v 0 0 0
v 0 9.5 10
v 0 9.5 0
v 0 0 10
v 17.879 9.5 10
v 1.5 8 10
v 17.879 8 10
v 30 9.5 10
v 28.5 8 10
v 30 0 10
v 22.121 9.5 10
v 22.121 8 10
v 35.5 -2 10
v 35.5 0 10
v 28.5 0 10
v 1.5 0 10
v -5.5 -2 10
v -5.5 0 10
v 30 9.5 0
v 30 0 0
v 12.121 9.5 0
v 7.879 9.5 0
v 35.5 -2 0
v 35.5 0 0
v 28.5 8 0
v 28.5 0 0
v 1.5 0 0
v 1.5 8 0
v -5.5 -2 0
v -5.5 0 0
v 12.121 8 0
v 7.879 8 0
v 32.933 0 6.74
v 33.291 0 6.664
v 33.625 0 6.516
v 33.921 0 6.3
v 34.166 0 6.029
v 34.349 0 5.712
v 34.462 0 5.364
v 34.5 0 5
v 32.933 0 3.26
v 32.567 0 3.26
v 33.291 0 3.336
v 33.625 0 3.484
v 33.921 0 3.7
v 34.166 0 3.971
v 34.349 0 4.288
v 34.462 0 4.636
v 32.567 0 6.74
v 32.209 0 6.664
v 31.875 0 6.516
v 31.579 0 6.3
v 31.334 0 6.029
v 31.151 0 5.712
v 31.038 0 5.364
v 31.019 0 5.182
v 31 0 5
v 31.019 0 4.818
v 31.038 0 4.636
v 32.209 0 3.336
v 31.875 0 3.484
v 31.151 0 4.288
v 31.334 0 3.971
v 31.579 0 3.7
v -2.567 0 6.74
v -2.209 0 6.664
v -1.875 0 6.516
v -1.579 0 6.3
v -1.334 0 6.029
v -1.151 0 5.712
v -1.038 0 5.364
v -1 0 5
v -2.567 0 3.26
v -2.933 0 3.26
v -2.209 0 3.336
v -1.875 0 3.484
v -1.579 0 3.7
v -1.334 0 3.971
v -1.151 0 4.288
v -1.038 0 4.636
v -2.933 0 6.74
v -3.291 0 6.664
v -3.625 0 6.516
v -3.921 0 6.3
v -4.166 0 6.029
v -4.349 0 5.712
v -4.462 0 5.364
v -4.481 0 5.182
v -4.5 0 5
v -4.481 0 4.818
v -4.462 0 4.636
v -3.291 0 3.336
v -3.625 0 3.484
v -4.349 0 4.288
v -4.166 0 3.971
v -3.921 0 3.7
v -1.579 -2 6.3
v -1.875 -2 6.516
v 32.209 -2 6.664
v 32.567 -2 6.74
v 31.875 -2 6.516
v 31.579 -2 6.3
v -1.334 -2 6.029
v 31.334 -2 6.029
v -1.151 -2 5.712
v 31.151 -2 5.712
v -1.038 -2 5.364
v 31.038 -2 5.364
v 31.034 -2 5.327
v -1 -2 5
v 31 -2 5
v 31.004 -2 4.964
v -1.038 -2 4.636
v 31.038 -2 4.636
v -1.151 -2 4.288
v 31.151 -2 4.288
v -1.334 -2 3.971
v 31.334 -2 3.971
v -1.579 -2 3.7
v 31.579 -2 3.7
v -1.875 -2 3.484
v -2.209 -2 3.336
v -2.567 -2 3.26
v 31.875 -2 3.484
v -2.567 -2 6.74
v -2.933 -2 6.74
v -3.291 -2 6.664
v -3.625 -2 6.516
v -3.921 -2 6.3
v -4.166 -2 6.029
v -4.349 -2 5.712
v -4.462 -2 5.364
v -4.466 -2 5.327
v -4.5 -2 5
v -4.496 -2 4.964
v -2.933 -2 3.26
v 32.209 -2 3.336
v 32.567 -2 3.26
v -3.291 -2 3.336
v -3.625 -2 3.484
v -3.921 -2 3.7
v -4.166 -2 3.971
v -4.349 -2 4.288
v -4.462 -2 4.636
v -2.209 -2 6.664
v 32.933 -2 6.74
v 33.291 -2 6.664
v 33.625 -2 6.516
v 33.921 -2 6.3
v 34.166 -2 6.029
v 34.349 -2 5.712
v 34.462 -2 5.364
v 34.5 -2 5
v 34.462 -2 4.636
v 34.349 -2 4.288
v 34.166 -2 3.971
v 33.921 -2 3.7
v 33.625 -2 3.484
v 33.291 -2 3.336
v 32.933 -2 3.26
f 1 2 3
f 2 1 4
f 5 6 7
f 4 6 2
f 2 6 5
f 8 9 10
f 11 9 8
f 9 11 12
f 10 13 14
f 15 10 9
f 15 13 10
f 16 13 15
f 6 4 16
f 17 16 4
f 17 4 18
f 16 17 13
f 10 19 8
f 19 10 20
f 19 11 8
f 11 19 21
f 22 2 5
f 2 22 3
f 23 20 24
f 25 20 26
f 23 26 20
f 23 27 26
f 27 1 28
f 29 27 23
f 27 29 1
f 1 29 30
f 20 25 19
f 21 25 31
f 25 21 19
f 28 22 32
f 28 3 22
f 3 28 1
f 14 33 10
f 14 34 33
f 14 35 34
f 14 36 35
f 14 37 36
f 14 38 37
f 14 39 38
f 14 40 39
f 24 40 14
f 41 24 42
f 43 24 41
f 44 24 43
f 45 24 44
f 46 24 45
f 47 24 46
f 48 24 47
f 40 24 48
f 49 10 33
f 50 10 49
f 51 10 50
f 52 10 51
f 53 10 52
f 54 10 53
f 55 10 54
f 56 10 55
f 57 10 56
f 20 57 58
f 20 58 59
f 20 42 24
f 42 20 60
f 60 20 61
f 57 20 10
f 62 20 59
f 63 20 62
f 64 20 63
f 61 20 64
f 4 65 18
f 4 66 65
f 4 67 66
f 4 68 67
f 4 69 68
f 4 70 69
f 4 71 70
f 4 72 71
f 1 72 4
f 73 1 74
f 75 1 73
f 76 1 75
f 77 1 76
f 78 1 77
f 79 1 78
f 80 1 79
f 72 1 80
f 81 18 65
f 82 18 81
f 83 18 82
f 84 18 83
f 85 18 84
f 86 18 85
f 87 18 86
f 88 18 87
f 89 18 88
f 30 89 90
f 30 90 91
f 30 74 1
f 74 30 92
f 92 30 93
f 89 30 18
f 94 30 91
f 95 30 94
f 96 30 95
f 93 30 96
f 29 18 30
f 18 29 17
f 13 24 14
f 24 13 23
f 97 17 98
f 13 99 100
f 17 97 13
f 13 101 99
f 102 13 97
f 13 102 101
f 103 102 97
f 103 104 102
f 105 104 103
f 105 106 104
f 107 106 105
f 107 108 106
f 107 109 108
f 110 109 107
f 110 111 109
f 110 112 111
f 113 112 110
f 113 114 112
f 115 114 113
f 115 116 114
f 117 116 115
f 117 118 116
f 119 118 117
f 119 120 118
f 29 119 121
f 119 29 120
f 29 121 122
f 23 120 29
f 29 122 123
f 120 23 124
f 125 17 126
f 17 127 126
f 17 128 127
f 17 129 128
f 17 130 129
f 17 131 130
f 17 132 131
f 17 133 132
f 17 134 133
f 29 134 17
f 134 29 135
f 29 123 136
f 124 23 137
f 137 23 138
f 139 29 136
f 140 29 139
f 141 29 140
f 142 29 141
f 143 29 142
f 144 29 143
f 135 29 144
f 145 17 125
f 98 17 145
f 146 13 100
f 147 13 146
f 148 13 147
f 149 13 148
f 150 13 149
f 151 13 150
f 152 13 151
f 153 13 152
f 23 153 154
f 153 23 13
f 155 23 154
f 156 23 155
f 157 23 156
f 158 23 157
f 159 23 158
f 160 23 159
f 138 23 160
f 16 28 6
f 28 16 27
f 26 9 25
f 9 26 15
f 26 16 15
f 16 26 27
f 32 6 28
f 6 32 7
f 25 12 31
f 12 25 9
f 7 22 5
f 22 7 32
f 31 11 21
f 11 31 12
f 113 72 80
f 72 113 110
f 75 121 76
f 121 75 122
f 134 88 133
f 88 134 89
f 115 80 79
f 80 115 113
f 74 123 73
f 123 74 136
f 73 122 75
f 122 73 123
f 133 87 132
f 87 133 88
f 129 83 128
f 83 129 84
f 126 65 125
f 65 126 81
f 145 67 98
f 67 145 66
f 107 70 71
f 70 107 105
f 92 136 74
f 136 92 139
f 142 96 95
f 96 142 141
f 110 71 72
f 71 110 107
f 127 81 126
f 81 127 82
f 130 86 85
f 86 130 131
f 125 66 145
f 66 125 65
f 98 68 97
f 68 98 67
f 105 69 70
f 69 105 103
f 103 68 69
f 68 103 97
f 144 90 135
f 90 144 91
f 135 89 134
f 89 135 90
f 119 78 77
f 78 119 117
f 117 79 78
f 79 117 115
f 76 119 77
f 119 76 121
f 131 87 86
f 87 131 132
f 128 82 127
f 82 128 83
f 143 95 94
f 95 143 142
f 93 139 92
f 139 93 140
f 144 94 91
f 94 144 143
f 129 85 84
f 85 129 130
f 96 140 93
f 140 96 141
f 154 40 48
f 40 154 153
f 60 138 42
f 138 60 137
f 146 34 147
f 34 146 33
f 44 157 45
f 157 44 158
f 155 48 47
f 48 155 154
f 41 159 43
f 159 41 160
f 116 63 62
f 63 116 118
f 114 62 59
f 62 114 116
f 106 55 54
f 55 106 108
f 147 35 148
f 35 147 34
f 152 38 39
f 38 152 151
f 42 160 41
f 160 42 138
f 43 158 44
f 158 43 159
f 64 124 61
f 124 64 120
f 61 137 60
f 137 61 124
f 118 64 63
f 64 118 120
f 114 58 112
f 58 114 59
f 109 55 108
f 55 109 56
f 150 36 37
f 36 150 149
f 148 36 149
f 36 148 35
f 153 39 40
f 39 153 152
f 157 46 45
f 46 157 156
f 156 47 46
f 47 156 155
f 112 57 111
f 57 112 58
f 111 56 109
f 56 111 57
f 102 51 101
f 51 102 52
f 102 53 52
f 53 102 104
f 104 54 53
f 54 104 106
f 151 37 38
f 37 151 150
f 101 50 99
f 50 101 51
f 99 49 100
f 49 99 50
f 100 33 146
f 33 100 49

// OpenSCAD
height = 8;

module frame() {
    union() {
        cube([30,height+1.5,10]);
        translate([(30-41)/2,-2,0]) cube([41,2,10]);
    }
}

difference() {
    frame();
    translate([(30-27)/2,0,0]) cube([27,height,11]);
    translate([30/2, height,20/2-5]) rotate([0,45,0]) cube([3,5,20], center=true);
    translate([-3.5/2-1, -5/2, 10/2]) rotate([-90,0,0]) cylinder(d=3.5, h=5, $fn=30);
    translate([3.5/2+1+30, -5/2, 10/2]) rotate([-90,0,0]) cylinder(d=3.5, h=5, $fn=30);
}
